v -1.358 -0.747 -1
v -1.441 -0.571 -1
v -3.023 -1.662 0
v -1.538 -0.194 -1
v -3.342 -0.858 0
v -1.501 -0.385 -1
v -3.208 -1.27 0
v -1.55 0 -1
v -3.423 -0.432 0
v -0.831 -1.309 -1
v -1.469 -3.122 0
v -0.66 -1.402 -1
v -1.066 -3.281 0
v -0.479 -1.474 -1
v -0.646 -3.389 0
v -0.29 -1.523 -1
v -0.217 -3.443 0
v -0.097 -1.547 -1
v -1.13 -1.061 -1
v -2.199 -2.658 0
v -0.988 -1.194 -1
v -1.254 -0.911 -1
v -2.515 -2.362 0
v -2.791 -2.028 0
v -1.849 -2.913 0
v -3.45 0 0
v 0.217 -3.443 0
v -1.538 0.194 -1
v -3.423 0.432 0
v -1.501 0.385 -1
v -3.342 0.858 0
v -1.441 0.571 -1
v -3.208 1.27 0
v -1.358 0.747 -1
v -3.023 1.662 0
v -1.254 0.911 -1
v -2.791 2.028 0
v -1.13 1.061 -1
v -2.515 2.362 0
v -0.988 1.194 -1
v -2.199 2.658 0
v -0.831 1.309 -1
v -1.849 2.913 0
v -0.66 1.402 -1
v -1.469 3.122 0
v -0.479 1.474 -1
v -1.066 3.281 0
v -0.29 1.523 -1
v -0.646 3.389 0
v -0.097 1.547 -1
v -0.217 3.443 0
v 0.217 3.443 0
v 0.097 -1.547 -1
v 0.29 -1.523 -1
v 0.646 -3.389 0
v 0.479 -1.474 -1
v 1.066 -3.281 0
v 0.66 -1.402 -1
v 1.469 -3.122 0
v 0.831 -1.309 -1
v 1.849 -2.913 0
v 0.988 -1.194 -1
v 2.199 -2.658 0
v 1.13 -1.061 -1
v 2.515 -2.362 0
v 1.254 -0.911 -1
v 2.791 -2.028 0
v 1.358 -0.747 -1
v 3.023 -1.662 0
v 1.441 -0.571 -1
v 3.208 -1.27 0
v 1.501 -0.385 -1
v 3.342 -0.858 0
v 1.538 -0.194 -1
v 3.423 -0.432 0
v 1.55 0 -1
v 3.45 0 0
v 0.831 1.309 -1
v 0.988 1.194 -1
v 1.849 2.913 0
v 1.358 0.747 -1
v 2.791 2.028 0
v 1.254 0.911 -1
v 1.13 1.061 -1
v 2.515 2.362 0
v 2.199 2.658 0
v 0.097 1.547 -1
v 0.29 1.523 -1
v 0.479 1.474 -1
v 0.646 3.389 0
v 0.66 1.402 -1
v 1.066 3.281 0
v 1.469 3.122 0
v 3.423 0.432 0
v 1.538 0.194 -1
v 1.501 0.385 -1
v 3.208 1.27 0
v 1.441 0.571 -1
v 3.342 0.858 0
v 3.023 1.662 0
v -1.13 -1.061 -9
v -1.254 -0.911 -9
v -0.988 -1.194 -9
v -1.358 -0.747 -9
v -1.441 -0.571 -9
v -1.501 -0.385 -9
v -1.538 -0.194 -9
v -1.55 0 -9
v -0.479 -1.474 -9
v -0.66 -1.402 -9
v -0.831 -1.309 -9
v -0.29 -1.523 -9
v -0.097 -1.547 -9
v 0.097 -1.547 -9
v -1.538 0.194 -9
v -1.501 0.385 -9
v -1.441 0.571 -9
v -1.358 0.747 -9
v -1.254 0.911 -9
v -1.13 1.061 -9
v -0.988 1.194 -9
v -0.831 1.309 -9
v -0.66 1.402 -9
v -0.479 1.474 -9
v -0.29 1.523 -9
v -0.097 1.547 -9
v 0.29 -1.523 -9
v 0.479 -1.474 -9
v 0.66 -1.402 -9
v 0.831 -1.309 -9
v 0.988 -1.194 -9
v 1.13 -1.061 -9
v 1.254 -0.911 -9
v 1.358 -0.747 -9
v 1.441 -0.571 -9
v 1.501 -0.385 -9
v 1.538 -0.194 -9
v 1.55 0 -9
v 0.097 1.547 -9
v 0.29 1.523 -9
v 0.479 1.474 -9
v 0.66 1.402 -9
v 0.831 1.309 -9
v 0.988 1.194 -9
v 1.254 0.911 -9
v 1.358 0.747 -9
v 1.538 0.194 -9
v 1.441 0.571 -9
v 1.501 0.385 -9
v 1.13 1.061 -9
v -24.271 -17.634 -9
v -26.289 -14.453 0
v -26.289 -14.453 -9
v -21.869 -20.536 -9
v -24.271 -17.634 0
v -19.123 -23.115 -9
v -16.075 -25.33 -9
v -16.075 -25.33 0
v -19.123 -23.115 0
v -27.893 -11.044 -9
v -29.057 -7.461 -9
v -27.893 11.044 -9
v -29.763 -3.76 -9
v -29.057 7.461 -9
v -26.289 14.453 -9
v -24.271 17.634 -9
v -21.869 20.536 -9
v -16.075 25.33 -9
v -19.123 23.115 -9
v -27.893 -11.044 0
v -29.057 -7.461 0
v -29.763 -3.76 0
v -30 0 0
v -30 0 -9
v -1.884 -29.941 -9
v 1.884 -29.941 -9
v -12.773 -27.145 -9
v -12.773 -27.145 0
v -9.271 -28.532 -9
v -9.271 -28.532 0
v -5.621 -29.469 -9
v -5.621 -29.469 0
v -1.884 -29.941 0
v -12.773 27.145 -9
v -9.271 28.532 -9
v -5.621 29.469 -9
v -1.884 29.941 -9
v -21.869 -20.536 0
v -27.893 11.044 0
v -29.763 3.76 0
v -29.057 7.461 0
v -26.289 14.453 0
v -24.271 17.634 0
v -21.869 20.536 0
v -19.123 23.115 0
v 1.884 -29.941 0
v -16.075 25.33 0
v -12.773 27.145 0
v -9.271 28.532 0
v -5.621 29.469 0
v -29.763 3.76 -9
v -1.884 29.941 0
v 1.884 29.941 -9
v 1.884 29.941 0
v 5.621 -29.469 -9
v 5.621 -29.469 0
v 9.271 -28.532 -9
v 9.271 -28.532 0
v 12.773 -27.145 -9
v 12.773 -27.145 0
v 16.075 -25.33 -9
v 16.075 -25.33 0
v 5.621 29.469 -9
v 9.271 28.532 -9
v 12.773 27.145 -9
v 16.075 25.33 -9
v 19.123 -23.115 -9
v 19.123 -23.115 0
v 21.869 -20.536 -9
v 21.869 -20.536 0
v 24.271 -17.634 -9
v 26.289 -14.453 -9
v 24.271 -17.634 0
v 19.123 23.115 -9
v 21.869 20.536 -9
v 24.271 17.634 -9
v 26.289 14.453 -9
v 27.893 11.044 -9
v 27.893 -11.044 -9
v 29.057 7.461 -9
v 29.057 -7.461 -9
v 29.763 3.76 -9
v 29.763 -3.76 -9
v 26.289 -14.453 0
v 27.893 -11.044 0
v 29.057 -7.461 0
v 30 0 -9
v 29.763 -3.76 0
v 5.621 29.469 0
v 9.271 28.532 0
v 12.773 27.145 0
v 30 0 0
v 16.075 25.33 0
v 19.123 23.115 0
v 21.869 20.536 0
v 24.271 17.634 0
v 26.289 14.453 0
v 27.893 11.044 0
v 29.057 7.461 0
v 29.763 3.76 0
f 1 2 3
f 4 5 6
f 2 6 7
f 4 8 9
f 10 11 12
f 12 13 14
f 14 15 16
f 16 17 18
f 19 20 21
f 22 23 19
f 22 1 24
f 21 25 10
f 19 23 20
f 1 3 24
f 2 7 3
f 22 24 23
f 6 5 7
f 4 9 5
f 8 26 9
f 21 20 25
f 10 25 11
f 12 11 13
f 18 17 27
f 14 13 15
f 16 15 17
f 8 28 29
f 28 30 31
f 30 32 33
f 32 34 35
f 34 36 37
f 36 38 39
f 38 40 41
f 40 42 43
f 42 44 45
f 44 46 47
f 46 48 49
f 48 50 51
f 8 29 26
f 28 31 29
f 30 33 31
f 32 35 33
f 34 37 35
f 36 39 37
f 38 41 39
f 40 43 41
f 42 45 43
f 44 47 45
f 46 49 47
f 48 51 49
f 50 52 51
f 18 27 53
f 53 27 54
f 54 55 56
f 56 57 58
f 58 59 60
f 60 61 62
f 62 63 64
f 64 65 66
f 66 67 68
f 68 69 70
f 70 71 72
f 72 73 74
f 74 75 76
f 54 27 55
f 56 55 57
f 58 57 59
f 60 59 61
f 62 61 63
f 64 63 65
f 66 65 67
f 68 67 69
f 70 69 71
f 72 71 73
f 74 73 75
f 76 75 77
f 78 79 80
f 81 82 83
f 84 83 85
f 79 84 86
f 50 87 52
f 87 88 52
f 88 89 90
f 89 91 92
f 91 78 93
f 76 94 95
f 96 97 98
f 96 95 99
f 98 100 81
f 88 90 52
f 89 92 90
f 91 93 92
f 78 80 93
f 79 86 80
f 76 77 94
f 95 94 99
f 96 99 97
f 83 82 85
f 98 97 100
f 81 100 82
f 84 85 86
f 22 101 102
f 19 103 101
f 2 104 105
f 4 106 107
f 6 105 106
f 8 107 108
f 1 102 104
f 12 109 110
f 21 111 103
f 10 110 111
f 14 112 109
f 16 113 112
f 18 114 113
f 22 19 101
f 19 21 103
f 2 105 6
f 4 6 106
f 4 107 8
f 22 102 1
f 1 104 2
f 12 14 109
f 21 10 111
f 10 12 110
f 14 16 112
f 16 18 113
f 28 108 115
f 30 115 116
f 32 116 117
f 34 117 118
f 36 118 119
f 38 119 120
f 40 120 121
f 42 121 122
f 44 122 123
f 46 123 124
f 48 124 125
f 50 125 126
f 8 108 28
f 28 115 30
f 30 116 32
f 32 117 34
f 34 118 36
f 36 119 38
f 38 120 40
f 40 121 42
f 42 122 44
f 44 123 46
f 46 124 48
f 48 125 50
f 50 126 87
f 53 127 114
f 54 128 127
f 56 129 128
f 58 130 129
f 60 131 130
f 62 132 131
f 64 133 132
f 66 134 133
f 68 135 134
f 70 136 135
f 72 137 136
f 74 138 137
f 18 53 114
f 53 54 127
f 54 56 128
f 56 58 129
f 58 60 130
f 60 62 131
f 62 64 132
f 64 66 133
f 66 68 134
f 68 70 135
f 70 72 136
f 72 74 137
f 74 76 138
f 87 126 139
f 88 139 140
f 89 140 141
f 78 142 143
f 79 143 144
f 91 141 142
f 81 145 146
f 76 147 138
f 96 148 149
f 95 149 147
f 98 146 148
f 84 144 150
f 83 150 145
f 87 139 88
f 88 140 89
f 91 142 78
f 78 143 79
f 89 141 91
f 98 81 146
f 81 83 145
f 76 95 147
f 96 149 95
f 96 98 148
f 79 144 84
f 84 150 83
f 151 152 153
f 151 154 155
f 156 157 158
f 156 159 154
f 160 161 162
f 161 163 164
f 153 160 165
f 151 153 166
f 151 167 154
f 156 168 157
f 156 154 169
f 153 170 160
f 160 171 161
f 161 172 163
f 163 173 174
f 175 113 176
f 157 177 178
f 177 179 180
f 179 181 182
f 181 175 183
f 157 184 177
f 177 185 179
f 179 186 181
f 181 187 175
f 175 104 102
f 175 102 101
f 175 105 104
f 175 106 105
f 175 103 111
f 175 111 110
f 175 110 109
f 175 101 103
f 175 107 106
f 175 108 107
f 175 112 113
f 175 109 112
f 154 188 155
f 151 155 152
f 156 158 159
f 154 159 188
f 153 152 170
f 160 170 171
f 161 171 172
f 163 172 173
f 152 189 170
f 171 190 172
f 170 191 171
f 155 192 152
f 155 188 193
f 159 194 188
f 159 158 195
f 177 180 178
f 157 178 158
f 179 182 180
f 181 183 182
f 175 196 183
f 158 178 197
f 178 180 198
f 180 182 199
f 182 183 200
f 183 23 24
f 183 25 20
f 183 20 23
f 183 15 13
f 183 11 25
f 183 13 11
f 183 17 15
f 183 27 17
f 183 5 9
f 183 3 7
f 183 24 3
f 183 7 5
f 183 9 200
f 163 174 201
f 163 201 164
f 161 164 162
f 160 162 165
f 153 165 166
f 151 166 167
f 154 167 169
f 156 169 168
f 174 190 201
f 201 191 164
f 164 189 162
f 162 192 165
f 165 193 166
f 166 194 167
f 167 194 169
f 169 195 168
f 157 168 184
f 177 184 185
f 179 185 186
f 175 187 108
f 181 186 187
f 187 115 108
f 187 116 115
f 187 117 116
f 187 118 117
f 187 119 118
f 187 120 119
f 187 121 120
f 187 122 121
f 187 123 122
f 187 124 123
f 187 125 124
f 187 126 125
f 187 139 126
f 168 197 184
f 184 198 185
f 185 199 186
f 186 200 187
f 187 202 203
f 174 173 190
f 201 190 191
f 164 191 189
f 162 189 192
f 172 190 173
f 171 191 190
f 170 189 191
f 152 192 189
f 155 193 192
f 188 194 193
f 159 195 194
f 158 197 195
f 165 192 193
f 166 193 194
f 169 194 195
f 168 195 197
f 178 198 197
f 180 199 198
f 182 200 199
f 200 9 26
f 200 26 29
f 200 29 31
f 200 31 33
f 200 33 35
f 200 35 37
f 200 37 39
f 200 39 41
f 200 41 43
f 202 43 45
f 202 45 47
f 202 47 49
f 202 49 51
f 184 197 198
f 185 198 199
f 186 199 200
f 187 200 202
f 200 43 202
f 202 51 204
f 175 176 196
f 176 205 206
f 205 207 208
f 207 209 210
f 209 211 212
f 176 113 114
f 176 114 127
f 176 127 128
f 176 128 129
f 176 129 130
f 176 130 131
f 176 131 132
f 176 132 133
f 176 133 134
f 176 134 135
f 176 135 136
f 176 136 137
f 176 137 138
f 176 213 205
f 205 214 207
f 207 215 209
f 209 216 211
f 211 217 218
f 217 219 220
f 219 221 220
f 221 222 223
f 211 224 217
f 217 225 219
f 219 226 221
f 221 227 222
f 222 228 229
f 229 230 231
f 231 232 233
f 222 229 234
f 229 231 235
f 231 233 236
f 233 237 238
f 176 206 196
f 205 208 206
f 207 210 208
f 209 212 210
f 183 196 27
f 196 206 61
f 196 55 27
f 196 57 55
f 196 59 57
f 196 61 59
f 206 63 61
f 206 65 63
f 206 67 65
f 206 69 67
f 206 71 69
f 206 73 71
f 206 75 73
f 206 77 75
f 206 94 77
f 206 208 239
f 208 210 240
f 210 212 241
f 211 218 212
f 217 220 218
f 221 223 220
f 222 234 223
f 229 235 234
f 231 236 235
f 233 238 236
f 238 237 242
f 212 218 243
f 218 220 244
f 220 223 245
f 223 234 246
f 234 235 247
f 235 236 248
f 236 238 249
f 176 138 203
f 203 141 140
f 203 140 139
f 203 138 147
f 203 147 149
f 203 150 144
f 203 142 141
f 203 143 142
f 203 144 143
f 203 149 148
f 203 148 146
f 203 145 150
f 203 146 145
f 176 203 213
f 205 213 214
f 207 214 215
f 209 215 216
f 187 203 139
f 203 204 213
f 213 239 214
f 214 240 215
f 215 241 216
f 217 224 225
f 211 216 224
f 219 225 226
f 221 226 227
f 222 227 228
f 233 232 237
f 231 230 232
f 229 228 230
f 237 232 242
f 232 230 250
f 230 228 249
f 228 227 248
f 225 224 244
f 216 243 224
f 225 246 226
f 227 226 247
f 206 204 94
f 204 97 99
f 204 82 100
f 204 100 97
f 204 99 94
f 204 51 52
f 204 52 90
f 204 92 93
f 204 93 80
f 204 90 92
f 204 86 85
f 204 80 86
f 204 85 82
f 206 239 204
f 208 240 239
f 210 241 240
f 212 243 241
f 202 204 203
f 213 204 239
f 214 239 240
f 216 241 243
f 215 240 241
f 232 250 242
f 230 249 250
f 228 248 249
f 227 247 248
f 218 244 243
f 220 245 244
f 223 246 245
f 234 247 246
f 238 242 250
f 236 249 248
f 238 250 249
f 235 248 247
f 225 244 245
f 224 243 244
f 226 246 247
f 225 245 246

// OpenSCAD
$fn = 50;

difference() {
	union() {
		translate(v = [0, 0, -9.0]) {
			cylinder(h = 9, r = 30.0);
		}
	}
	union() {
		translate(v = [0, 0, 0]) {
			rotate(a = [0, 0, 0]) {
				difference() {
					union() {
						translate(v = [0, 0, -12.0]) {
							cylinder(h = 12, r = 1.25);
						}
						translate(v = [0, 0, -1.0]) {
							cylinder(h = 1.0, r1 = 1.55, r2 = 3.45);
						}
						translate(v = [0, 0, -12.0]) {
							cylinder(h = 12, r = 1.55);
						}
						translate(v = [0, 0, -12.0]) {
							cylinder(h = 12, r = 1.25);
						}
					}
					union();
				}
			}
		}
	}
}
